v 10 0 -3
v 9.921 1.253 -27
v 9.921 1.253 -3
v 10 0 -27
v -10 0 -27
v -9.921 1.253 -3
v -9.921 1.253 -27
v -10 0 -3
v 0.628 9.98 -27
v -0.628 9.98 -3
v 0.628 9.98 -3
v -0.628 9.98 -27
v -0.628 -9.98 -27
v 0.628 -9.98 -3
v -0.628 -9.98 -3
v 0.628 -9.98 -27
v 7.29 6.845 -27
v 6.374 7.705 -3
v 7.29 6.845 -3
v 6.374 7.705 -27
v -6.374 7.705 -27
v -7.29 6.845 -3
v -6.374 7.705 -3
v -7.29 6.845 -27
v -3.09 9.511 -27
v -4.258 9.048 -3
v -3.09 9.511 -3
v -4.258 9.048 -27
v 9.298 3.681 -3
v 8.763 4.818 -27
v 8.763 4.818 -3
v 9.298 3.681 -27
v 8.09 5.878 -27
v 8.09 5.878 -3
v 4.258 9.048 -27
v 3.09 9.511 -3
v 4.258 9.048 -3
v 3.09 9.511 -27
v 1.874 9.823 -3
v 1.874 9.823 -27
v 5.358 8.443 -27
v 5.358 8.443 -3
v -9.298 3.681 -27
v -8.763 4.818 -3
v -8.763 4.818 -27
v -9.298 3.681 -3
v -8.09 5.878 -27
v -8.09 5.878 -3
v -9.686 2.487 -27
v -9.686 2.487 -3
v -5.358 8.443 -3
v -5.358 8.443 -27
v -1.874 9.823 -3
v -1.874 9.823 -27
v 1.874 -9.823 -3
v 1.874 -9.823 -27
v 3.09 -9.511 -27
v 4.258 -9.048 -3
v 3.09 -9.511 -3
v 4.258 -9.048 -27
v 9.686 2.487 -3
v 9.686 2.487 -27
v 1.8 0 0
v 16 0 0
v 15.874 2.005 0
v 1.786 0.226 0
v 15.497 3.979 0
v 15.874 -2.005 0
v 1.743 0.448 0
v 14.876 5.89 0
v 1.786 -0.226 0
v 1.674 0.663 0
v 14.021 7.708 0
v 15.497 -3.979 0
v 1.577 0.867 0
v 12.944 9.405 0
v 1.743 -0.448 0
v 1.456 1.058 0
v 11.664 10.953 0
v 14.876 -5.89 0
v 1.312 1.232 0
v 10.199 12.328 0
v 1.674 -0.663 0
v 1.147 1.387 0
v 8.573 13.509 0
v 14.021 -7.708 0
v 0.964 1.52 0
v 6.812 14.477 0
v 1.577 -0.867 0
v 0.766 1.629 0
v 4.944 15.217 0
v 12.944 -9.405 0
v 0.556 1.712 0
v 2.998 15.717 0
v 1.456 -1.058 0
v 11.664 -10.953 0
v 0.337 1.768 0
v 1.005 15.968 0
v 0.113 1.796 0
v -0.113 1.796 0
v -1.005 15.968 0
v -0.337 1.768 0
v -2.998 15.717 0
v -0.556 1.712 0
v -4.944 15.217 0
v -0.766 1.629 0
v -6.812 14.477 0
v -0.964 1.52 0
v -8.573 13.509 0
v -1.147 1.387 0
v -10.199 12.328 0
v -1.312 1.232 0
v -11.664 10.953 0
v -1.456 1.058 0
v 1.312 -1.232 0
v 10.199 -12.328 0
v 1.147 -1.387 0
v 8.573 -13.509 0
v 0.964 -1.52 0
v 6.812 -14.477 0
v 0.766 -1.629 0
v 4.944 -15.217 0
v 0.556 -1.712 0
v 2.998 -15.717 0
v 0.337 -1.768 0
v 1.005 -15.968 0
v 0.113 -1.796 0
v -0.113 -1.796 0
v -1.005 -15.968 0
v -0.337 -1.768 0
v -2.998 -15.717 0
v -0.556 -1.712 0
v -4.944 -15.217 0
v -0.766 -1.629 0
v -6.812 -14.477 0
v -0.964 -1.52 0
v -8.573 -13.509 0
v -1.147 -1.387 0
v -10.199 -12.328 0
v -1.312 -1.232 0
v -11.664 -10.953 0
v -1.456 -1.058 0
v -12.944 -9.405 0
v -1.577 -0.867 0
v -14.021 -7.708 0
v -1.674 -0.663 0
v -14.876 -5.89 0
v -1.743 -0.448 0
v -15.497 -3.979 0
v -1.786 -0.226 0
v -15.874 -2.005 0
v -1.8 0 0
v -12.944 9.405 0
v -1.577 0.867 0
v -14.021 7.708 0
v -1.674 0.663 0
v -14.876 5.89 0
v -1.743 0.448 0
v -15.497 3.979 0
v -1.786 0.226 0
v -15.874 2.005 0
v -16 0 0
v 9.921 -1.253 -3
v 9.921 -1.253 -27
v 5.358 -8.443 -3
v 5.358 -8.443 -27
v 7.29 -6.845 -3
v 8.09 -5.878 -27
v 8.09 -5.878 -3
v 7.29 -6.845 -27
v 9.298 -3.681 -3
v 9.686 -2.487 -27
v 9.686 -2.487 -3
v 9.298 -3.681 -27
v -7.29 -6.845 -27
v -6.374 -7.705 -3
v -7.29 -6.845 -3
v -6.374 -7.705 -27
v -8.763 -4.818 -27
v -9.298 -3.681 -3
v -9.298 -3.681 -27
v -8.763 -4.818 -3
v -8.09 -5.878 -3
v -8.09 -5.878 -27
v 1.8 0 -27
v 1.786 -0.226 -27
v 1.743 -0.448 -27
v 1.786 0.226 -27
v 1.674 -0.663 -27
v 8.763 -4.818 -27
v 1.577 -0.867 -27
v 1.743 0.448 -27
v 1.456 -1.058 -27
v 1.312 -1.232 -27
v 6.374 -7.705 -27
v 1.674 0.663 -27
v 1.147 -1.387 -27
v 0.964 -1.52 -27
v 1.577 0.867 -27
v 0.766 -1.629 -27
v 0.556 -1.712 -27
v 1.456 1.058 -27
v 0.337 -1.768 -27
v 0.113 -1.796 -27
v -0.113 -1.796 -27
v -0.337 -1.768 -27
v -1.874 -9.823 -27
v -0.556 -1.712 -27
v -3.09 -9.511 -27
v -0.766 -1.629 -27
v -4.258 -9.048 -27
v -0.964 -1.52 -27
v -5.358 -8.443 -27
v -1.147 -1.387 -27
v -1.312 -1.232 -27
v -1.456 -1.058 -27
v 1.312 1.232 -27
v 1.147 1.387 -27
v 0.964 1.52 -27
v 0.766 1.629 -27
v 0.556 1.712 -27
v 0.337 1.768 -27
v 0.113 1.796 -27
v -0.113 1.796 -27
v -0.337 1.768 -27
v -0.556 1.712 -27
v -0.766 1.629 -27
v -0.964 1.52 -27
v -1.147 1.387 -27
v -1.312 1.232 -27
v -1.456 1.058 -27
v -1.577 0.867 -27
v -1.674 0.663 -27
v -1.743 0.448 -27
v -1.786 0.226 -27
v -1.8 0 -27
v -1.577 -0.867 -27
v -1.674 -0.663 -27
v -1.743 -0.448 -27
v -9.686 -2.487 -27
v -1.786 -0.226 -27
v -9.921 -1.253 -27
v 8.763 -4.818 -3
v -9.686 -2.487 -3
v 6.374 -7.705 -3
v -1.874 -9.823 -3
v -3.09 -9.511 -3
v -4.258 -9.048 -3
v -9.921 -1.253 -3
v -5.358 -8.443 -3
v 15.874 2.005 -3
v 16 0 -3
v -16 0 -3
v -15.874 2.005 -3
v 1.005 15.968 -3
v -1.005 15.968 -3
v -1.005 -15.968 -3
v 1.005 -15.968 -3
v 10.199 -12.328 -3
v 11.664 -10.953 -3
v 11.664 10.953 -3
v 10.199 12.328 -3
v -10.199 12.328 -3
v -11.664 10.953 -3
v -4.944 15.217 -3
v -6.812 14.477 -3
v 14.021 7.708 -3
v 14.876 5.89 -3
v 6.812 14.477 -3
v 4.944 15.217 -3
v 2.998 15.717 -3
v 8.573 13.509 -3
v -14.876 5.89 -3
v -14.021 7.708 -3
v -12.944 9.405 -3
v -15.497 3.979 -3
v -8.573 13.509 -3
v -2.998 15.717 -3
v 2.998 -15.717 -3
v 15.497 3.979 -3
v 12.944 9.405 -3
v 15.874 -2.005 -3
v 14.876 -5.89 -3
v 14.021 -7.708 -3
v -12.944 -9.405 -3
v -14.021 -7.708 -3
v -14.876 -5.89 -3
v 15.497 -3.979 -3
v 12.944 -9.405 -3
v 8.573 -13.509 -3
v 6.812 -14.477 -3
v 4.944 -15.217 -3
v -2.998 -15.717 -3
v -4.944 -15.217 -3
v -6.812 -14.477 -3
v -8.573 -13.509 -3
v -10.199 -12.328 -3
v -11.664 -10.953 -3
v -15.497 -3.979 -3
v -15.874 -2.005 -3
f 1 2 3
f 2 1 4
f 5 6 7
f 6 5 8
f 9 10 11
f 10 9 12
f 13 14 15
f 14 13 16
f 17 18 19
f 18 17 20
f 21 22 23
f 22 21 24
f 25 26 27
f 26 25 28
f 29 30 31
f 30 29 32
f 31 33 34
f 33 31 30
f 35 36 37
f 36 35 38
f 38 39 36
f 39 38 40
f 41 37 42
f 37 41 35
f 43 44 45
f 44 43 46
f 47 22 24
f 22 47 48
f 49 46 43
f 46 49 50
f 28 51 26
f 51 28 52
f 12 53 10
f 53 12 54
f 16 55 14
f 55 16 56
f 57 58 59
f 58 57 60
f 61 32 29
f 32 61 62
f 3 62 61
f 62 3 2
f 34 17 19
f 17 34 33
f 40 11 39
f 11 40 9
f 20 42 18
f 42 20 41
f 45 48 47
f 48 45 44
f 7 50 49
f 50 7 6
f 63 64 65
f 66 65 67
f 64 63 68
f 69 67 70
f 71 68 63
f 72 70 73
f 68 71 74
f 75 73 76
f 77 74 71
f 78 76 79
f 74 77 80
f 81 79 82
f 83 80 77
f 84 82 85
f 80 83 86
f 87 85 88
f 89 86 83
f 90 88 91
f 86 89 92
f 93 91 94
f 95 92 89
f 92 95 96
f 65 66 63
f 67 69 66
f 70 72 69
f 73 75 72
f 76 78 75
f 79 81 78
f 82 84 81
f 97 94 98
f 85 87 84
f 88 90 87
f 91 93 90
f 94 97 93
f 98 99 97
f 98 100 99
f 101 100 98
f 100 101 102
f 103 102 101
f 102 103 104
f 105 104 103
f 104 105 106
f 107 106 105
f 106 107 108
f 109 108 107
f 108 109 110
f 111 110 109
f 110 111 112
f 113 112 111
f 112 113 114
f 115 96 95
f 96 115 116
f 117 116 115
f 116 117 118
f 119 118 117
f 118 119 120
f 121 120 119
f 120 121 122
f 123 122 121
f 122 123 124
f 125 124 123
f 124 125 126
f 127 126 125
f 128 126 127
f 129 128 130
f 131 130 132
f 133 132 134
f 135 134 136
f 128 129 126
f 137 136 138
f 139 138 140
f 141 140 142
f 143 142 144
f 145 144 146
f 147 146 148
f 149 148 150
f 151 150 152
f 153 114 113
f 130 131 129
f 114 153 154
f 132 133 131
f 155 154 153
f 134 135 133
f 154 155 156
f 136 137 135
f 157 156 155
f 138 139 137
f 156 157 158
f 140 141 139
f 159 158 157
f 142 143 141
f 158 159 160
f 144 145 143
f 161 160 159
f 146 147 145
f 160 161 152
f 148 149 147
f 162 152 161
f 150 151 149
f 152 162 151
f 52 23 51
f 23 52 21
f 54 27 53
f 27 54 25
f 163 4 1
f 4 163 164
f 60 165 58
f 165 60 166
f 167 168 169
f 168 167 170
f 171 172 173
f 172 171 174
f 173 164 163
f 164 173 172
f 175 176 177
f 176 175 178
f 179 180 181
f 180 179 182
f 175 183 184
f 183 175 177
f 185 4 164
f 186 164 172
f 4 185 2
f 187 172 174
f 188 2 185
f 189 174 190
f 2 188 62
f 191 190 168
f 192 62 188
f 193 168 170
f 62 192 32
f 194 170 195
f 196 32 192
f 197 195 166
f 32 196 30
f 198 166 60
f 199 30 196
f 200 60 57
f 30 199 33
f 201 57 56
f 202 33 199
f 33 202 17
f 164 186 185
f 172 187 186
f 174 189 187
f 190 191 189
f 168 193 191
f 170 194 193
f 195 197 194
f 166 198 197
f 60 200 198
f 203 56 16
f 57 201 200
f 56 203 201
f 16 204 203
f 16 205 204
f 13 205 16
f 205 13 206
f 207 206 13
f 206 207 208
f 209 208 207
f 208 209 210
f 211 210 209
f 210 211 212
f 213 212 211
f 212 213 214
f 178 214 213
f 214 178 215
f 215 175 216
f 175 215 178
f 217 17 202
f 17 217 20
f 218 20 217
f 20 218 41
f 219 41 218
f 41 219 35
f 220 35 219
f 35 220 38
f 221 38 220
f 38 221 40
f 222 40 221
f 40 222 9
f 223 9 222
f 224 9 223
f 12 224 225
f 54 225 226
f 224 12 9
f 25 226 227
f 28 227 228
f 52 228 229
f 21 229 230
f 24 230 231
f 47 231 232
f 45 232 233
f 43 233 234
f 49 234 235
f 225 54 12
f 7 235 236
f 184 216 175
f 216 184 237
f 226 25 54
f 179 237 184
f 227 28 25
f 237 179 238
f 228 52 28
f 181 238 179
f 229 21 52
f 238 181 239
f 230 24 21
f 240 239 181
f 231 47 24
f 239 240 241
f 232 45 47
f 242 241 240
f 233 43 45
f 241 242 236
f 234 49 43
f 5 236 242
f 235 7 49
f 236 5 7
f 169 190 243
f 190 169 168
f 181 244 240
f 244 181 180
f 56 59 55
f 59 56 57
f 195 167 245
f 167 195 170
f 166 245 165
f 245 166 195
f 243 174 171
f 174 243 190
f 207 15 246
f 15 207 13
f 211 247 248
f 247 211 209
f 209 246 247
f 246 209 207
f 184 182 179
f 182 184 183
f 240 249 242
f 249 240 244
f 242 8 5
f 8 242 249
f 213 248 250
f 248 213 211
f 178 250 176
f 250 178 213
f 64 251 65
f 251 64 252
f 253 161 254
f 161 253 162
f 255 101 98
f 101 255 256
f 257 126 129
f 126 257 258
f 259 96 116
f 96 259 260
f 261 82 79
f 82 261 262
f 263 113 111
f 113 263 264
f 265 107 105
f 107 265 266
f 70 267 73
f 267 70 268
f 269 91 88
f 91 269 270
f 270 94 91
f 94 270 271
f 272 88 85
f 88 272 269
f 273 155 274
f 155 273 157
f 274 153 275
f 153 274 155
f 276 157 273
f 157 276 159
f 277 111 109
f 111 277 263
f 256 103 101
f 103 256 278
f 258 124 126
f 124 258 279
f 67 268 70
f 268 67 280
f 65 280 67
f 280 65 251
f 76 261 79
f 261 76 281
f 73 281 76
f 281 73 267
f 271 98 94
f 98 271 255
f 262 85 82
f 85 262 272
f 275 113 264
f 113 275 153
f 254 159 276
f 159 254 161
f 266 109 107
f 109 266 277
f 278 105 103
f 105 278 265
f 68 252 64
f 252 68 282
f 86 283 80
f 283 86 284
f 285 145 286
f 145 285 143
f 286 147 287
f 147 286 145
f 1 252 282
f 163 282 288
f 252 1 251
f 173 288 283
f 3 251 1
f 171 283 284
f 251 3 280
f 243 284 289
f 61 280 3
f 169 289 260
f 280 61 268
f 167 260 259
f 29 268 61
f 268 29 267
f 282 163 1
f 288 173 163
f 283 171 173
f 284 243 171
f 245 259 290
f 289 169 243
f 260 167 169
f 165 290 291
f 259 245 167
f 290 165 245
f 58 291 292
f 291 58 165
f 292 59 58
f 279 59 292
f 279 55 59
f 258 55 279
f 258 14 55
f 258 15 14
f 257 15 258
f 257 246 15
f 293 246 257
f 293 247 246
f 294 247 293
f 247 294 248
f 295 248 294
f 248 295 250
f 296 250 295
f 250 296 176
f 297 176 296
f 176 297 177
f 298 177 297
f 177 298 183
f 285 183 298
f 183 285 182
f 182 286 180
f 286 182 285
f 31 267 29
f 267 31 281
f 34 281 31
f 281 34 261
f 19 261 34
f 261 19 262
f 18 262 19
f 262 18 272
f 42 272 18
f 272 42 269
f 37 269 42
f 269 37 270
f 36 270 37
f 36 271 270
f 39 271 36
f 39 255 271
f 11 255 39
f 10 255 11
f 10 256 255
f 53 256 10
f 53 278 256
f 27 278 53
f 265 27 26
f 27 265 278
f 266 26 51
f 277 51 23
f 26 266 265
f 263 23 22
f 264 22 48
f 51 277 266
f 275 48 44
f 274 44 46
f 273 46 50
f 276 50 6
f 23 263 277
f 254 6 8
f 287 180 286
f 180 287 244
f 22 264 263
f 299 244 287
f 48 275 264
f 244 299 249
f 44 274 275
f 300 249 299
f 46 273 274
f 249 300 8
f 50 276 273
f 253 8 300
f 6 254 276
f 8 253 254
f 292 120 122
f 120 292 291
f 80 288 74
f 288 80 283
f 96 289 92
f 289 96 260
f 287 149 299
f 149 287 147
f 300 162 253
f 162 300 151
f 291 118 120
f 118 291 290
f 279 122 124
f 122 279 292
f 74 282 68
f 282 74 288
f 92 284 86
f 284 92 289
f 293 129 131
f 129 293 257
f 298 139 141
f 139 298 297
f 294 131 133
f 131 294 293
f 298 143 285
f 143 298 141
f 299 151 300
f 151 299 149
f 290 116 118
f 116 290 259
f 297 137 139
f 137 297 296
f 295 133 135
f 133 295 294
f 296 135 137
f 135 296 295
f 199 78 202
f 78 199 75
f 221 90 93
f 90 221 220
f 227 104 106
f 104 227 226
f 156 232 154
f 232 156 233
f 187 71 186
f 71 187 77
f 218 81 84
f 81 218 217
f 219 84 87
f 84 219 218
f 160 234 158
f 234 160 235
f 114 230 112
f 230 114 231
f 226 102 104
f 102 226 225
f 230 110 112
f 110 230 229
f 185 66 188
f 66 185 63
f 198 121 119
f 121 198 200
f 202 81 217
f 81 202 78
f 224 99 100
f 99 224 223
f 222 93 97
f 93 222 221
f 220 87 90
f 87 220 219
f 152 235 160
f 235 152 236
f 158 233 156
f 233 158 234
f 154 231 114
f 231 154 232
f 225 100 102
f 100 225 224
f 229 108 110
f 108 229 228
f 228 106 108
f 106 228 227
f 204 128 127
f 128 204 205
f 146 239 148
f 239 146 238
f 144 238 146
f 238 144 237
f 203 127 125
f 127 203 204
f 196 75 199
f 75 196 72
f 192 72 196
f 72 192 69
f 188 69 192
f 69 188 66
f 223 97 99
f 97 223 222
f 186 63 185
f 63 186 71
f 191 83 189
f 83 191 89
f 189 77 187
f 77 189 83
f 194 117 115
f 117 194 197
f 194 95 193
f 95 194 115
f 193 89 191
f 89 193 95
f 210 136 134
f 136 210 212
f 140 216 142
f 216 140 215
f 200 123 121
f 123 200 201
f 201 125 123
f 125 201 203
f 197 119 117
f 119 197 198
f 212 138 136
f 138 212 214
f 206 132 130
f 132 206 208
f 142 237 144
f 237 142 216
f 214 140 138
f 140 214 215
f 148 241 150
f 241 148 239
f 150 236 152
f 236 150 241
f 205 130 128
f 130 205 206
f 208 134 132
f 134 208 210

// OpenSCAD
$fn = 50;


difference() {
	union() {
		translate(v = [0, 0, -27.0000000000]) {
			cylinder(h = 27, r = 10.0000000000);
		}
		translate(v = [0, 0, -3.0000000000]) {
			cylinder(h = 3, r = 16.0000000000);
		}
	}
	union() {
		#translate(v = [0, 0, -27]) {
			cylinder(h = 27, r = 1.8000000000);
		}
	}
}
